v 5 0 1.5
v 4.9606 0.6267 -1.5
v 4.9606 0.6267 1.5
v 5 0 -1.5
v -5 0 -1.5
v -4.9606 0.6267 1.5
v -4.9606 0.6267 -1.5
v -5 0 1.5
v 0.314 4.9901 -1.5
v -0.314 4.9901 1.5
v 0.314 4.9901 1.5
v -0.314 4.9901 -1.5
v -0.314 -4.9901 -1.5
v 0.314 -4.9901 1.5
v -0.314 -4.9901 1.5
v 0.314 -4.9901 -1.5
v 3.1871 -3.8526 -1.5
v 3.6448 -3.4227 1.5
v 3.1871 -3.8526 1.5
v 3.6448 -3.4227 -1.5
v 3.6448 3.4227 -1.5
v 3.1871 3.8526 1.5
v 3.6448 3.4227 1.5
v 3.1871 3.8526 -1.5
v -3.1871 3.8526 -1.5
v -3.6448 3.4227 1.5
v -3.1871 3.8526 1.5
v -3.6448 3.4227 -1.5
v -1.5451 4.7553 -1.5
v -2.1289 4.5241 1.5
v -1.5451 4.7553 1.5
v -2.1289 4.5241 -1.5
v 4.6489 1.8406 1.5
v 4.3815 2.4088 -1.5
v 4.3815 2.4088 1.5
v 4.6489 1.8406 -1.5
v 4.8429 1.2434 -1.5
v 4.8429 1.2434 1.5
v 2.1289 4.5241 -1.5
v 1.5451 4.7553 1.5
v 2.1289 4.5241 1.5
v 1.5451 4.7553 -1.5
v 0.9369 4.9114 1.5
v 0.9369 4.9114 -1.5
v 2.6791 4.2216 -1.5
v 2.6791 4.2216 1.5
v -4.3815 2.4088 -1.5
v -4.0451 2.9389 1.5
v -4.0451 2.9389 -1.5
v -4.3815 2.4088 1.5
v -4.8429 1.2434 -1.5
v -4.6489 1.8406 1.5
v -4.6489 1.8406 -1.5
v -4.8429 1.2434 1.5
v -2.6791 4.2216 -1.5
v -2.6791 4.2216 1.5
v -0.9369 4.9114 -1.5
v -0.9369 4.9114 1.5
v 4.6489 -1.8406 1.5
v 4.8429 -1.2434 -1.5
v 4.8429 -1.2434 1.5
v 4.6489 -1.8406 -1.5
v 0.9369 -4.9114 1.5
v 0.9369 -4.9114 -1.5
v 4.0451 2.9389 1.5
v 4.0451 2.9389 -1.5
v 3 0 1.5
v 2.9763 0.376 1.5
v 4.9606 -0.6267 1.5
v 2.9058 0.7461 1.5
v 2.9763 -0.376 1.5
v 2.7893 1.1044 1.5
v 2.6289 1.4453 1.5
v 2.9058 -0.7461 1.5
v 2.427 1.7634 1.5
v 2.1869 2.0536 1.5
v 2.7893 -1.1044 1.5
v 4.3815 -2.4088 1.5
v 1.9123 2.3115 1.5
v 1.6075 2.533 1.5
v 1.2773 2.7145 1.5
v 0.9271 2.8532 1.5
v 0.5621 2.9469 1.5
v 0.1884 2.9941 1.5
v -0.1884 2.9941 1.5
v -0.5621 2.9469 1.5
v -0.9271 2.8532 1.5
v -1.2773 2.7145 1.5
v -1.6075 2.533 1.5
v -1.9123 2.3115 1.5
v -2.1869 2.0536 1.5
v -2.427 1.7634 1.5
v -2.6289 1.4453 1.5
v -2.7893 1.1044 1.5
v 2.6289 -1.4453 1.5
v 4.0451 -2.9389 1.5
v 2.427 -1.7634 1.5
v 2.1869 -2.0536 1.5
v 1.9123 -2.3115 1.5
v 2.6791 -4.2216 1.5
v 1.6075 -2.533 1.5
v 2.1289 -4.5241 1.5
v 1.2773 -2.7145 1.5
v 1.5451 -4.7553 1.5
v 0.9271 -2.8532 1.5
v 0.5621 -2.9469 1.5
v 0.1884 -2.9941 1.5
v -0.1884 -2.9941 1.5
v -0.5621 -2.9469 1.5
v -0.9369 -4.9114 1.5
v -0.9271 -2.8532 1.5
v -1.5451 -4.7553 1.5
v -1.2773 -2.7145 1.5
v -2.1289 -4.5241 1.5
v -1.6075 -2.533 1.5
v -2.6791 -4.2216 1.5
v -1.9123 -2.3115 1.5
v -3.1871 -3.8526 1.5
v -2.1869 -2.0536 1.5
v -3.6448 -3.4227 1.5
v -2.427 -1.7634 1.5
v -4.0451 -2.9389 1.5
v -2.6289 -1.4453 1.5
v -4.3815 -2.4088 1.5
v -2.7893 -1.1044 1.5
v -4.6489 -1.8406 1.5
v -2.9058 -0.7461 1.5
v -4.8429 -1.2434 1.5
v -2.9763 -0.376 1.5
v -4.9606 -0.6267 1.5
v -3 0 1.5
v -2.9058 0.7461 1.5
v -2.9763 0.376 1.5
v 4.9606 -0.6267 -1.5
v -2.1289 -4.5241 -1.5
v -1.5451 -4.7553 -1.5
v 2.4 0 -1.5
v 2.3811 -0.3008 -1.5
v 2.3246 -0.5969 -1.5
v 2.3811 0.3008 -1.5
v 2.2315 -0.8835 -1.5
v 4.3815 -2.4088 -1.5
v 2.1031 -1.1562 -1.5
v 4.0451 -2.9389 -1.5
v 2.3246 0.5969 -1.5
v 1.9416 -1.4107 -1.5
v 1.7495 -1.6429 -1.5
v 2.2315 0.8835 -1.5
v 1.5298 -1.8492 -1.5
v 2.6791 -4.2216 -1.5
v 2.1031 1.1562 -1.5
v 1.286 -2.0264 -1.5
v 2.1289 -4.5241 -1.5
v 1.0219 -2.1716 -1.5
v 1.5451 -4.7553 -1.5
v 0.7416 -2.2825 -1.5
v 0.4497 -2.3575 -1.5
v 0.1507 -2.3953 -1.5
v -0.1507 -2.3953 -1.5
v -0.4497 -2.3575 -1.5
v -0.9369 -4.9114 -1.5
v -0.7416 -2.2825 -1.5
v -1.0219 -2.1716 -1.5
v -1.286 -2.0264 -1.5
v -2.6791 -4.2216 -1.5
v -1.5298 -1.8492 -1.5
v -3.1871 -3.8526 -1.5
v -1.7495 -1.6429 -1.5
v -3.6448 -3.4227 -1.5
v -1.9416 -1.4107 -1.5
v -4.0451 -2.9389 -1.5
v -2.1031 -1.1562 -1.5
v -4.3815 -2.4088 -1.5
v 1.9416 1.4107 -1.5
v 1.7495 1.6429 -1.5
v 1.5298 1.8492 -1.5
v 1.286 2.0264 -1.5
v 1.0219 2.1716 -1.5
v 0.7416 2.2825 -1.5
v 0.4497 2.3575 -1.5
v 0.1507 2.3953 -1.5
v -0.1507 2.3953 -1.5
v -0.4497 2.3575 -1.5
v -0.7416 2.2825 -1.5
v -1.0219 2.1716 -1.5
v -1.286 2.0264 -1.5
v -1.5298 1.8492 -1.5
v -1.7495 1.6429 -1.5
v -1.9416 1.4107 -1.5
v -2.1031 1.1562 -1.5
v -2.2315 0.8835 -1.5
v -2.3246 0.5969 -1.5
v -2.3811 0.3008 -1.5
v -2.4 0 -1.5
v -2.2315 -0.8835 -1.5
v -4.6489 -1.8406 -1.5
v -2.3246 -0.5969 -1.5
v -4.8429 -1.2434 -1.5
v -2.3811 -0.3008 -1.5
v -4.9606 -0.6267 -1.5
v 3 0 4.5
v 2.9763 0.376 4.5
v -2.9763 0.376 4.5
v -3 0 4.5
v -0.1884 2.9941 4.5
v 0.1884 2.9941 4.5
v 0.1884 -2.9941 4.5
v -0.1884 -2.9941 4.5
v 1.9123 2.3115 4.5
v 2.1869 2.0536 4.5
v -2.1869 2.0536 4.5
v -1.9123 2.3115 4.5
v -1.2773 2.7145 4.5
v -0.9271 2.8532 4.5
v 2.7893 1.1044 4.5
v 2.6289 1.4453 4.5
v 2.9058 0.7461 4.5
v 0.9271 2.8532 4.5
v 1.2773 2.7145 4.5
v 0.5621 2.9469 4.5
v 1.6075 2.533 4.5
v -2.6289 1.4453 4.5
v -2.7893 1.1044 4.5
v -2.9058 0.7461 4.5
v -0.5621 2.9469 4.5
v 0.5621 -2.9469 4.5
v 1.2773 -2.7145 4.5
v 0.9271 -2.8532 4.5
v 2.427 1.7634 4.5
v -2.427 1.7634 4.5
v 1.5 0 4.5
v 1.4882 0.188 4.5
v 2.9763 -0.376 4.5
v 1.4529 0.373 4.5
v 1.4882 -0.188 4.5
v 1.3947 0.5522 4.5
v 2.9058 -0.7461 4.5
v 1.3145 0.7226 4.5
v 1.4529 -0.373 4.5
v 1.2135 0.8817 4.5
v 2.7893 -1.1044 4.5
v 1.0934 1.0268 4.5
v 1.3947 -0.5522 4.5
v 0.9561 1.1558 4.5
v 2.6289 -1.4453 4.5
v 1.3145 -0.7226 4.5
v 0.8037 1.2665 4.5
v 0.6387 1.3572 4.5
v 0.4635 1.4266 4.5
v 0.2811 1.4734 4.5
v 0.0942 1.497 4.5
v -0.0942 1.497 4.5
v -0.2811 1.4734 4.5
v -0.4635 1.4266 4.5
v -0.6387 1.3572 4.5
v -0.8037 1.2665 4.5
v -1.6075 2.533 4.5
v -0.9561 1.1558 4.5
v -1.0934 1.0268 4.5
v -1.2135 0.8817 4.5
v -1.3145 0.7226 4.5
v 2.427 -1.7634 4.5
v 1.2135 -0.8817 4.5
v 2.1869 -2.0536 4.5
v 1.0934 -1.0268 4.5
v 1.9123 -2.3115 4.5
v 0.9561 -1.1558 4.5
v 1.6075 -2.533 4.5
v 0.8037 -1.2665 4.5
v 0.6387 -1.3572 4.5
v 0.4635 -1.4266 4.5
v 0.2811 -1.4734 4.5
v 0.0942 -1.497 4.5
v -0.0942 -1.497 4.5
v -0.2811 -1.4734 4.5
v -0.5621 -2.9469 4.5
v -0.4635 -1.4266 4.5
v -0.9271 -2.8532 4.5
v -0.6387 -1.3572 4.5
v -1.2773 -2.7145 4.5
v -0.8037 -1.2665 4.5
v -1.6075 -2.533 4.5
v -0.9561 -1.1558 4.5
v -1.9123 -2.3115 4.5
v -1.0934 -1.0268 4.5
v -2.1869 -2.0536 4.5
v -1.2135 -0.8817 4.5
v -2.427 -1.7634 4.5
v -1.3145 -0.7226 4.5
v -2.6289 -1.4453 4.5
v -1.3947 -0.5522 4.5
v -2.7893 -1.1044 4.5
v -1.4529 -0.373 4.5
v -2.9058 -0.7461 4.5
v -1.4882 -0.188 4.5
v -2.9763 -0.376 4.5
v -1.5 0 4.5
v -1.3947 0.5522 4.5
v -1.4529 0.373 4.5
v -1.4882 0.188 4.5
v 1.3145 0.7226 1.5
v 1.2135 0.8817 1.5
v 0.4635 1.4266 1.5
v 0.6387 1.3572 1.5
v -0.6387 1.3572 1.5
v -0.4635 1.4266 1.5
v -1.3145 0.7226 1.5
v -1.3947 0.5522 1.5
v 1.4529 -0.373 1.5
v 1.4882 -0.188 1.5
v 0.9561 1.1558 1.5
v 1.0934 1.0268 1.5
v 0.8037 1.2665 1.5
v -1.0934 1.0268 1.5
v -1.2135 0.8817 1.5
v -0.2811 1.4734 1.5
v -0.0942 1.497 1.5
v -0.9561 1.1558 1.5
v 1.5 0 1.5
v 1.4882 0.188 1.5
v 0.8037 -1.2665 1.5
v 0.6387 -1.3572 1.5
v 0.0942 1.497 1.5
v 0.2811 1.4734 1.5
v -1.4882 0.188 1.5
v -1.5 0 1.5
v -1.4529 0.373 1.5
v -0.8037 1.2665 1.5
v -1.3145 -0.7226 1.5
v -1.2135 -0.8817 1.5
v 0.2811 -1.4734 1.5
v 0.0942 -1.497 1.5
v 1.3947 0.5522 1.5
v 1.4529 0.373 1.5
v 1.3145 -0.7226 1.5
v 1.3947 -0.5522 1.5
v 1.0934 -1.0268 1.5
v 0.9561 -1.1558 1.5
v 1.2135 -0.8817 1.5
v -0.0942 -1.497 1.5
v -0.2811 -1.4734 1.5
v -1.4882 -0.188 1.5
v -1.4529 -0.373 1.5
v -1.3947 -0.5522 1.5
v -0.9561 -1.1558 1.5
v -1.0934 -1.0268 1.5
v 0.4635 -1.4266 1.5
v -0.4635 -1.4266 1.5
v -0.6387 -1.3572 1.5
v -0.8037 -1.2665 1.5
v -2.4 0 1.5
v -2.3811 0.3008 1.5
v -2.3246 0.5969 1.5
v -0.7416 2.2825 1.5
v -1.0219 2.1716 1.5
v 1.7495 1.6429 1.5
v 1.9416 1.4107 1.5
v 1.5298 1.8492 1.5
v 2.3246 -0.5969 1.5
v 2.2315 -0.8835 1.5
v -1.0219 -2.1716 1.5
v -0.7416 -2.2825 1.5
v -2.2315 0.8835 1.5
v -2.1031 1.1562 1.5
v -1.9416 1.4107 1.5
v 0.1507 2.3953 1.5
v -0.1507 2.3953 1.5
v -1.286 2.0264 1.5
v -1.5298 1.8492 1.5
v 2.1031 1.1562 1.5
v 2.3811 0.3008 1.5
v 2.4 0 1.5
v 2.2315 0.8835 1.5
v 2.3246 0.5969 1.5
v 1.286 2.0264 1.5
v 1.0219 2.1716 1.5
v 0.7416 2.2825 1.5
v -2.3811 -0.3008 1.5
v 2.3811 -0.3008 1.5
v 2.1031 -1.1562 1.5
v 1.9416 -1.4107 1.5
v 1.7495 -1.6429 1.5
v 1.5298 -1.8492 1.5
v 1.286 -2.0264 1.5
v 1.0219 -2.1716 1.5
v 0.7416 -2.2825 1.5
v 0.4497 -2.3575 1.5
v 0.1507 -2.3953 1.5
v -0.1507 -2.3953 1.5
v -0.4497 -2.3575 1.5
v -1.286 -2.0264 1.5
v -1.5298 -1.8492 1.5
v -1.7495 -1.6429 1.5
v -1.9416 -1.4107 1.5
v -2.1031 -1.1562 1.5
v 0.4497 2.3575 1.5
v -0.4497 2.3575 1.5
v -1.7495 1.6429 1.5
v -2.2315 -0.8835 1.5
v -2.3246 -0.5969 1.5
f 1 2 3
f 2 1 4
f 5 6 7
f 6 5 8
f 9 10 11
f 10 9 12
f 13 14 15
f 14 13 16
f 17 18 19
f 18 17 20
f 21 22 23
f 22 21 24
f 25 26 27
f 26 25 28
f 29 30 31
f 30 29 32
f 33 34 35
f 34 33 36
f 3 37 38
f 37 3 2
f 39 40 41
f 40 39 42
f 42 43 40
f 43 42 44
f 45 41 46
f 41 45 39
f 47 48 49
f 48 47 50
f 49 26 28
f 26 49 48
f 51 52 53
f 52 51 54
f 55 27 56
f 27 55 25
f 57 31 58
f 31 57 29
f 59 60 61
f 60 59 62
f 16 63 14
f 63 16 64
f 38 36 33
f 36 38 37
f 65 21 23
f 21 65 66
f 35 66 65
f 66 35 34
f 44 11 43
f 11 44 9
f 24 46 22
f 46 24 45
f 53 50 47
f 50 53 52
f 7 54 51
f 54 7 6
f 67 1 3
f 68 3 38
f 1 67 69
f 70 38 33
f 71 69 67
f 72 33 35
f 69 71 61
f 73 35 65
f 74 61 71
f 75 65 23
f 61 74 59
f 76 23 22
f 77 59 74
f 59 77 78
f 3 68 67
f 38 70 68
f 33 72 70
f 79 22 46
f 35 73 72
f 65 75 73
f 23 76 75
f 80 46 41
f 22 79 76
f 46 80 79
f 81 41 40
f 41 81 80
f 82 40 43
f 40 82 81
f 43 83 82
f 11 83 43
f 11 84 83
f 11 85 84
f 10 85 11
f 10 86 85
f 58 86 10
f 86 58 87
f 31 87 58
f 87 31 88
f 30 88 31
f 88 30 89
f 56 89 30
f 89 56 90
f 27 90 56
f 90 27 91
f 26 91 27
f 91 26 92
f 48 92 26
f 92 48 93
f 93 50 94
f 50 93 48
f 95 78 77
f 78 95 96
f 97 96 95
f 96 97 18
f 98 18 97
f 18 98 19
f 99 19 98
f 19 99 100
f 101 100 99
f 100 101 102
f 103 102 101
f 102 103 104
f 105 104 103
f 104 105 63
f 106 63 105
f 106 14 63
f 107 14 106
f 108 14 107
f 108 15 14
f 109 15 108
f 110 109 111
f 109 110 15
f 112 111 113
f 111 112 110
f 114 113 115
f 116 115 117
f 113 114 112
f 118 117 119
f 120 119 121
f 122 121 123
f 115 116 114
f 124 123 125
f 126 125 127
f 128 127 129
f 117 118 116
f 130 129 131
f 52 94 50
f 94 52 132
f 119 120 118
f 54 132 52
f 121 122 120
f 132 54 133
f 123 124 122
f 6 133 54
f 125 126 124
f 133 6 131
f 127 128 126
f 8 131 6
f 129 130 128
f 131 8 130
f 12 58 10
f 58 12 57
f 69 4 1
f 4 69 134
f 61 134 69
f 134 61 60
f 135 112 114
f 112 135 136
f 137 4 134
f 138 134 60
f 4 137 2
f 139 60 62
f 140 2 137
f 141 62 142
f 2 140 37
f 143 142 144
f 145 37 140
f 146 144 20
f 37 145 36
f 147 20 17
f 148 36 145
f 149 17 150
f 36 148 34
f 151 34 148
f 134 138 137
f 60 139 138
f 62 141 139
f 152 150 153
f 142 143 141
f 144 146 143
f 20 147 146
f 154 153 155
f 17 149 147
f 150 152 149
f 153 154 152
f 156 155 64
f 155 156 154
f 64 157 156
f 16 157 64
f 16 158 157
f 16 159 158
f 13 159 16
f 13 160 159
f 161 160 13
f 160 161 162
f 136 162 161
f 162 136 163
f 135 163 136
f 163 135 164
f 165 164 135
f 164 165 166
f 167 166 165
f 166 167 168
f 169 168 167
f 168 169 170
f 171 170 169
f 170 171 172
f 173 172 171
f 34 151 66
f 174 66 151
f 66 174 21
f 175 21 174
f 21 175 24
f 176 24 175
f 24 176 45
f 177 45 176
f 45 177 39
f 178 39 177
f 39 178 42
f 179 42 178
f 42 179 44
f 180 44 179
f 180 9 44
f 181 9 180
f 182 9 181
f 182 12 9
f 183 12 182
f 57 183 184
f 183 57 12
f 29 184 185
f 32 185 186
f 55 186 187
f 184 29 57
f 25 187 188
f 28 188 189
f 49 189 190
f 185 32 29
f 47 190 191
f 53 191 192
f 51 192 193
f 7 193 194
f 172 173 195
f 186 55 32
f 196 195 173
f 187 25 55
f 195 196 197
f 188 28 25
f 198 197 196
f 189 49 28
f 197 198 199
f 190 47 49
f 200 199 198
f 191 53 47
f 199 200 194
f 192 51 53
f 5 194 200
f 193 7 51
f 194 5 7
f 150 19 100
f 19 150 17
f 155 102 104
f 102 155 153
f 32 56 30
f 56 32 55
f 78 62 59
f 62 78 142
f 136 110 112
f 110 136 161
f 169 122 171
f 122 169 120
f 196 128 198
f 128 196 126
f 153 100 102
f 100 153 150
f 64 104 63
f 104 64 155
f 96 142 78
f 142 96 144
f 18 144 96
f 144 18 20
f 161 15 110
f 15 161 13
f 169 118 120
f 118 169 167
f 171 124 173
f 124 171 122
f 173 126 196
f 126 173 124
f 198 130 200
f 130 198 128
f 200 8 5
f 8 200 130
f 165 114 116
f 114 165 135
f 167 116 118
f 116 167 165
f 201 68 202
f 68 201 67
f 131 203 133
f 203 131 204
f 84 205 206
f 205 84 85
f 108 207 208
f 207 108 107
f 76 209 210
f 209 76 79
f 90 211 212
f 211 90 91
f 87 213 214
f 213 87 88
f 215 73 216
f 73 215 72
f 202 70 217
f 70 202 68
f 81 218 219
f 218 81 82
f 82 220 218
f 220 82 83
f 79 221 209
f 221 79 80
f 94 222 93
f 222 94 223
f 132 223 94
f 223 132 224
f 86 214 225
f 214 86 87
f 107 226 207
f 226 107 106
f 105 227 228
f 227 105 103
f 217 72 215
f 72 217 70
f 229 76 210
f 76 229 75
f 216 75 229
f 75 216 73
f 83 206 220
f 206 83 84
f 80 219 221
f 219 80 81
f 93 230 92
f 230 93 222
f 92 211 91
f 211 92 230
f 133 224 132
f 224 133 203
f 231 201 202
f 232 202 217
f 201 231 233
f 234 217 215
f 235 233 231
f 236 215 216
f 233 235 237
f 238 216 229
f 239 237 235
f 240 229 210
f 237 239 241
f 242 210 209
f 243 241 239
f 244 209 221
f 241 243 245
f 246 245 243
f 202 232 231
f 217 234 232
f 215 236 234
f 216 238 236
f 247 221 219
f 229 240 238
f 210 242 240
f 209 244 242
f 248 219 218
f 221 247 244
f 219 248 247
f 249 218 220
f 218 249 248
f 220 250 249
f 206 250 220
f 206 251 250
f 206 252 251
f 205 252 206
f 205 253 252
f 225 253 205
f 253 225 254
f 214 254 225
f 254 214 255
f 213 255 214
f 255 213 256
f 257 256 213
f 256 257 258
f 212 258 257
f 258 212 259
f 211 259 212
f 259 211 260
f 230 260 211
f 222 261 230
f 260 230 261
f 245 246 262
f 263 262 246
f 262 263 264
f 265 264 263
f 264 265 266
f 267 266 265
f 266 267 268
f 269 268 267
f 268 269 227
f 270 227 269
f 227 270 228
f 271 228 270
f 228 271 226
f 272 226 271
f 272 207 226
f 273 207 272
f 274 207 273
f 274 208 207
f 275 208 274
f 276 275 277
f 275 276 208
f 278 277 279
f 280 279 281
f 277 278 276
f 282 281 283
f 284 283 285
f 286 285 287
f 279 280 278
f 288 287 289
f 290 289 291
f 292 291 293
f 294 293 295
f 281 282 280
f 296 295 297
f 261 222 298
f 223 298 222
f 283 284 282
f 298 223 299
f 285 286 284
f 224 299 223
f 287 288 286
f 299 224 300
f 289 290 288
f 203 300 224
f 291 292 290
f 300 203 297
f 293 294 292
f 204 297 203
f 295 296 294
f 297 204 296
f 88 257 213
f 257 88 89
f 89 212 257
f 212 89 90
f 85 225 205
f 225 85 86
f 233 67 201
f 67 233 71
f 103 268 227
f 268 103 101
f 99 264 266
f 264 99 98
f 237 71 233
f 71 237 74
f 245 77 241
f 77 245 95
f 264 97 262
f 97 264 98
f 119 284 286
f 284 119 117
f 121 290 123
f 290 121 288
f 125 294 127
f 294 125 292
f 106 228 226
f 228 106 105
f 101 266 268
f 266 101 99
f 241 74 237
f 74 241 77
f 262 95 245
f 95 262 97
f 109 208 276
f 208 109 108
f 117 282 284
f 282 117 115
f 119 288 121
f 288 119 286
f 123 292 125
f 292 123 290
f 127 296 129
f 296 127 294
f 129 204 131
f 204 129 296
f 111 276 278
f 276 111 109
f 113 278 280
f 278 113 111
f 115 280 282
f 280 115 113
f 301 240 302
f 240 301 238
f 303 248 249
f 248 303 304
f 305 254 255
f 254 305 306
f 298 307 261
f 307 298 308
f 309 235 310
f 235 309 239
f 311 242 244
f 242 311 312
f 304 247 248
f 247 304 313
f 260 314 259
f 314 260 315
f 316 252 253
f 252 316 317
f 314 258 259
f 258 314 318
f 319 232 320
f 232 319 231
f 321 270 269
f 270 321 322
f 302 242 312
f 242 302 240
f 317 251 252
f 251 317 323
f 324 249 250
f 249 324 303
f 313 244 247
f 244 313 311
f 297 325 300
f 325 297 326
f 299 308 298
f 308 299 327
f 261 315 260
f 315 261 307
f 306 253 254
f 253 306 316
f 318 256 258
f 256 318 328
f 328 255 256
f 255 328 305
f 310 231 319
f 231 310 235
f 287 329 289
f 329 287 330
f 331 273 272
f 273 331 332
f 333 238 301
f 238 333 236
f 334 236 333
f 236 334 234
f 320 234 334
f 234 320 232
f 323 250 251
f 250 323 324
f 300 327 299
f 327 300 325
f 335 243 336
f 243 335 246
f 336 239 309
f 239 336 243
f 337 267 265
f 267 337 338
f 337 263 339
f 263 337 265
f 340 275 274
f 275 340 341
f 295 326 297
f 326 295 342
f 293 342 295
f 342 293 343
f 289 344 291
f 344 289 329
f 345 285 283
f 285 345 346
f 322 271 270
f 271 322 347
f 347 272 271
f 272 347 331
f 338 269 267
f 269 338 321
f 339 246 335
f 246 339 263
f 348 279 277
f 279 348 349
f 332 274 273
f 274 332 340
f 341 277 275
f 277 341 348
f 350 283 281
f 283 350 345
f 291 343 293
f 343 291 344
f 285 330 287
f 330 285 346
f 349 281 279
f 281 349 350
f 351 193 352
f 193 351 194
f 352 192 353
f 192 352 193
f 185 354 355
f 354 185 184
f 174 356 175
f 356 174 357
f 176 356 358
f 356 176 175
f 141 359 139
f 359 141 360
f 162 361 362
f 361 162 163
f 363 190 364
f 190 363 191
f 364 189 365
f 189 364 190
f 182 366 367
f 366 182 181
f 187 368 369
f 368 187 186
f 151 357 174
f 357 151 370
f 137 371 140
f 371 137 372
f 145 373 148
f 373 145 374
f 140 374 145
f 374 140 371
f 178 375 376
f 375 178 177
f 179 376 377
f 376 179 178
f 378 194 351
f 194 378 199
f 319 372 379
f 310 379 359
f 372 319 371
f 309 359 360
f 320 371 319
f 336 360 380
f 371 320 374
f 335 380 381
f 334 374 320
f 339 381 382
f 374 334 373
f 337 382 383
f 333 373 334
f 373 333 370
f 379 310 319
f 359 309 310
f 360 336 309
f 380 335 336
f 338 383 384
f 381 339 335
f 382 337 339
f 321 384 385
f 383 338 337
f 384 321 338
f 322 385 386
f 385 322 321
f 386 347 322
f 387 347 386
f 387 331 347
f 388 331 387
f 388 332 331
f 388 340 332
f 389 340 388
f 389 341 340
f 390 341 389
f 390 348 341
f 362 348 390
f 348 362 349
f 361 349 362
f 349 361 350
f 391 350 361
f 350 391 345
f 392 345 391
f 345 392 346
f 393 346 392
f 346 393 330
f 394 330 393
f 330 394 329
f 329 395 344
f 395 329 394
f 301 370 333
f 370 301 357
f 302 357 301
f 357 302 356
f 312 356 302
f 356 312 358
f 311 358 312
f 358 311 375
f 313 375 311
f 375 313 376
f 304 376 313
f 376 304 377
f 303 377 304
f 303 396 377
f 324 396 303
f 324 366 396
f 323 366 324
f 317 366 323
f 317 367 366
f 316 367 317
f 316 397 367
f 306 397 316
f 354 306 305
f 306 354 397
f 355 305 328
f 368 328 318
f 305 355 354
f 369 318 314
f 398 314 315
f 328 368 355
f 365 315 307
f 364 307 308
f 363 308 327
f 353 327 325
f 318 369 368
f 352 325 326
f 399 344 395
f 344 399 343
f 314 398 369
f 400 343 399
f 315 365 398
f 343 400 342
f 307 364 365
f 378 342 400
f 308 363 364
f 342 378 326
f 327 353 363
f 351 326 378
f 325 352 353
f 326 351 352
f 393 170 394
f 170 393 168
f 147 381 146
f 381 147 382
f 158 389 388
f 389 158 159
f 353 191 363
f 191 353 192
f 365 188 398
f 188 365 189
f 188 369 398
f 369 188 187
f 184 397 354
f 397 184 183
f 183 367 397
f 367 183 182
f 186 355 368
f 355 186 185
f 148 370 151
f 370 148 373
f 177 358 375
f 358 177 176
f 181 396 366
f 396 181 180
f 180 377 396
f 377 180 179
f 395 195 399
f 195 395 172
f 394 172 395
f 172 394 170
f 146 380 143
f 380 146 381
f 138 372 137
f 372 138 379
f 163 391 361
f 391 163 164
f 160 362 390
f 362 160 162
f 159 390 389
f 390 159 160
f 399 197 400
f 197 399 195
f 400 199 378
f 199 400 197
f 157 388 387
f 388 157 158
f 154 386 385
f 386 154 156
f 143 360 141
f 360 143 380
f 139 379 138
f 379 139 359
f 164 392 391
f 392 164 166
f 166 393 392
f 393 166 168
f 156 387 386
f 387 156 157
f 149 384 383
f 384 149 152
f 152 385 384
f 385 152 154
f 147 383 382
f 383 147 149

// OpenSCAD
$fn = 50;


difference() {
	union() {
		translate(v = [0, 0, -1.5000000000]) {
			rotate(a = [0, 0, 0]) {
				cylinder(h = 3, r = 5.0000000000);
			}
		}
		translate(v = [0, 0, -1.5000000000]) {
			rotate(a = [0, 0, 0]) {
				cylinder(h = 6, r = 3.0000000000);
			}
		}
	}
	union() {
		translate(v = [0, 0, -125.0000000000]) {
			rotate(a = [0, 0, 0]) {
				cylinder(h = 250, r = 1.5000000000);
			}
		}
		#translate(v = [0, 0, 1.5000000000]) {
			rotate(a = [0, 180, 0]) {
				cylinder(h = 3, r1 = 2.4000000000, r2 = 2.4000000000);
			}
		}
		#translate(v = [0, 0, 4.5000000000]) {
			rotate(a = [0, 180, 0]) {
				cylinder(h = 6, r = 1.5000000000);
			}
		}
	}
}
